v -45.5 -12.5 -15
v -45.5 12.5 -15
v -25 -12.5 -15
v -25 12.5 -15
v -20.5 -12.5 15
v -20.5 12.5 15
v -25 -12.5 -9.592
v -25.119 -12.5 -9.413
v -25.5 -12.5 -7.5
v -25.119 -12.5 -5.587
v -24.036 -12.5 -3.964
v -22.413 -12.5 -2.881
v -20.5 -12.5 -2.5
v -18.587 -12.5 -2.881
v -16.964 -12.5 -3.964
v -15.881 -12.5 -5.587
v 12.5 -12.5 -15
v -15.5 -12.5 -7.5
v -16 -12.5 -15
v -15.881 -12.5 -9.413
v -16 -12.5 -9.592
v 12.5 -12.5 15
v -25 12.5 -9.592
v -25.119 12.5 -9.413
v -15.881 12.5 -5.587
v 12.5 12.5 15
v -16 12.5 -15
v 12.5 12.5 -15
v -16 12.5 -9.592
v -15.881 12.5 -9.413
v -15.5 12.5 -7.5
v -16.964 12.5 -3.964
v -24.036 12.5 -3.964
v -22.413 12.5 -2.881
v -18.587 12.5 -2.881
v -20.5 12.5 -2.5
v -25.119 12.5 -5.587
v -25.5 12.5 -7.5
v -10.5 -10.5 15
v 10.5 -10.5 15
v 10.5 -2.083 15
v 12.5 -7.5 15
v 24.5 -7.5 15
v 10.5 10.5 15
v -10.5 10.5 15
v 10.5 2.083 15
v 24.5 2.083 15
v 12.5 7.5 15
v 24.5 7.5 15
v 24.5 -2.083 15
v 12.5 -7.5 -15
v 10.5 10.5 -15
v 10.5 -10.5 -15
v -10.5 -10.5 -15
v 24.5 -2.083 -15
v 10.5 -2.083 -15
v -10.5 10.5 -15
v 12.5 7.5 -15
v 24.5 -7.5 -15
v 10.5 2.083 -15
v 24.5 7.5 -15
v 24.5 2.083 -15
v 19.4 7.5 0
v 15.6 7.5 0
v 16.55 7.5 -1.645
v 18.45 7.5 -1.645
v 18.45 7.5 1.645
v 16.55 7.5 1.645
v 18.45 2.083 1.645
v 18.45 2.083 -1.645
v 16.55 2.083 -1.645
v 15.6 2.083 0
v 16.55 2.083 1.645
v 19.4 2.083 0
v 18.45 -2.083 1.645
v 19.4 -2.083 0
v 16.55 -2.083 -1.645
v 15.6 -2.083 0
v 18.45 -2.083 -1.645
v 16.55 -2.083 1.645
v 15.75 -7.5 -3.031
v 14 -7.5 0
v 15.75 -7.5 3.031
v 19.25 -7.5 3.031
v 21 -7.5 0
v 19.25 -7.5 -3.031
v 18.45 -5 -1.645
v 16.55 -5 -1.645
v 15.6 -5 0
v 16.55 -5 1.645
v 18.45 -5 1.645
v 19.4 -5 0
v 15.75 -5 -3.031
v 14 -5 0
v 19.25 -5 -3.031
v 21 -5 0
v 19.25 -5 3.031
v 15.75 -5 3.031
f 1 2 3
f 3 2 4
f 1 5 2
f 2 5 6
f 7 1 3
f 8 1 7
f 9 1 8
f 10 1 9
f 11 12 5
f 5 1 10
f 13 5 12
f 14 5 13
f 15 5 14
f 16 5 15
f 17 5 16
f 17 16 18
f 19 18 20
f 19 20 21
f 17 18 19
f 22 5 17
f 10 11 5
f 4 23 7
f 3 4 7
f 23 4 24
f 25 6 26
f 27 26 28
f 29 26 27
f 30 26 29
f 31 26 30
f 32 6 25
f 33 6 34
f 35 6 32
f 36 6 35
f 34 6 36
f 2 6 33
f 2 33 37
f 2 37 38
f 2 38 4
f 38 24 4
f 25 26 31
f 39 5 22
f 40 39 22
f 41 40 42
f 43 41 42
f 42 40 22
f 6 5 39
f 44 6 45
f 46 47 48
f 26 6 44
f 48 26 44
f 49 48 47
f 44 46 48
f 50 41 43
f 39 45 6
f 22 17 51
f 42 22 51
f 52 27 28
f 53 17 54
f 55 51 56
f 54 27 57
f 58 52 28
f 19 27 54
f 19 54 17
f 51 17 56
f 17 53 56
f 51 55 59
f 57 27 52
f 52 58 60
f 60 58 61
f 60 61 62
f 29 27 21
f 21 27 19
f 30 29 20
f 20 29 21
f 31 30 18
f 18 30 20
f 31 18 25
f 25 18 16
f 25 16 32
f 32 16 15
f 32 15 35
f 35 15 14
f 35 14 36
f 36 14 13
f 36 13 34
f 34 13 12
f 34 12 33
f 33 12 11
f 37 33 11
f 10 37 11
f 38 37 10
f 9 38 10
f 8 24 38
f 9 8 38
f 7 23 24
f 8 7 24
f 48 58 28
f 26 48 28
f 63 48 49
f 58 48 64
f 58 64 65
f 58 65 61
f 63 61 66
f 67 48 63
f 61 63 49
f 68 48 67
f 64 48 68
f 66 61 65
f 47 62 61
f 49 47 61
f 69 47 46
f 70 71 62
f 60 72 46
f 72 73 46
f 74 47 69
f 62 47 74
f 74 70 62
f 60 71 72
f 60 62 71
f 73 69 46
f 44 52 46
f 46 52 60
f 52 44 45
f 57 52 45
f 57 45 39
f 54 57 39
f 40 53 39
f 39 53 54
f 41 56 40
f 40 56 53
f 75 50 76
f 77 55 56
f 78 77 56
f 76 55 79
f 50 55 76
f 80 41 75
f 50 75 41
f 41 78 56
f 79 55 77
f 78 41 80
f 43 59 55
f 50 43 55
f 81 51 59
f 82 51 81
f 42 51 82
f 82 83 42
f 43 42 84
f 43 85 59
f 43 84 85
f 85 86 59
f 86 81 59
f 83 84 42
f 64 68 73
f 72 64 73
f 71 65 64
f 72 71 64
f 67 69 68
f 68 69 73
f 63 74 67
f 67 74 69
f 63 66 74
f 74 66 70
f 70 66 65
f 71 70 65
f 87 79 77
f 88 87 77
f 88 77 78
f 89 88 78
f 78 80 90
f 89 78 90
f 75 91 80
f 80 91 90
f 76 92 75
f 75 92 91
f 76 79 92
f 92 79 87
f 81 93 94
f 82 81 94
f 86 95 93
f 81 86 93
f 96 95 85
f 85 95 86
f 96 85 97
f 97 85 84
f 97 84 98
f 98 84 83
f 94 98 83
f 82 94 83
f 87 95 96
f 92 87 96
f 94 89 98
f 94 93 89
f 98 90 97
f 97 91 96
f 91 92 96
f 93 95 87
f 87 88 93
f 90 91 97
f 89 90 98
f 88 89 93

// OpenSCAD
// file: nut_trap.scad
/*
 *  OpenSCAD nut_trap.scad
 *  Copyright (C) 2013 Mogue Carpenter
 *
 *  License: LGPL 2.1 or later
 *
 *  A simple nut trap. 
 *  
*/

// example 
// nut_trap(21,3,6,3,6);


module nut_trap ( lenght, hole_dia, nut_dia, nut_depth, nut_sides ) {
	// lenght : Total lenght of the trap. 
	// hole_dia : Diameter of the bolt shaft.
	// nut_dia : Diameter of the nut.
	// nut_depth : Depth of the nut trap.
	// nut_sides : Number of side in the nut trap. 
	difference() {
		union() {
			cylinder(lenght,hole_dia/2,hole_dia/2,center = true);

			translate ([0,0,(lenght/2)-nut_depth])
			cylinder(nut_depth,nut_dia/2,nut_dia/2,nut_depth,$fn=nut_sides);
		}	

	} // differance 
}
// main file
/*
 *  OpenSCAD threaded rod holder 
 *  Copyright (C) 2013 Mogue Carpenter
 *
 *  License: LGPL 2.1 or later
 *
 *  A simple rod holder to fit on a rectangular
 *  pipe with a m4 retaining screw.
*/

include <nut_trap.scad>;

// Rod size
rod_dia = 8;
rod_r = rod_dia/2 ;

// Part size
box_height = 30;
outer_size_x = 25;
outer_size_y = 25;

// Tube size
inner_size_x = 21;
inner_size_y = 21;

// Bolt
bolt_lenght = 15;
bolt_nut_dia = 7;

difference() {
	union() {
		// Outer Box
		translate([-rod_dia/2,0,0])
		cube( size = [outer_size_x+rod_dia,outer_size_y,box_height], center = true); 
		wedge ();
		translate([inner_size_x/2+bolt_nut_dia,0,0]) nut_vise(bolt_nut_dia,bolt_lenght,box_height);
	}

		// - inner box
		cube( size = [inner_size_x,inner_size_y,box_height+2], center = true); 
		// rod clip
		translate ([-((outer_size_x/2+rod_dia)),0,-box_height/4])
			rod_clip_hole(outer_size_y+2,(rod_dia/2)+1,box_height/2);
	  // vice grip gap
		translate([(bolt_nut_dia*2)+(outer_size_x - inner_size_x),0,0])
			cube (size = [(bolt_nut_dia*2)+(outer_size_x - inner_size_x)+1,outer_size_y/6,box_height], center = true) ;
}

module rod_clip_hole (w, r, h) {
	rotate([90,0,0])
		cylinder(w,r,r,center = true);
	translate ( v = [0,0,-h/4] )
		cube( size = [(r*2)-1,w,h/2], center = true); 
 }

module wedge (){
translate ( v = [-(outer_size_x+rod_dia),0,0] )
	polyhedron(
	  points=[ 
			// the four points at base
			[outer_size_x/2,outer_size_y/2,-box_height/2],
			[outer_size_x/2,-outer_size_y/2,-box_height/2],
			[-outer_size_x/2,-outer_size_y/2,-box_height/2],
			[-outer_size_x/2,outer_size_y/2,-box_height/2],	
	 		// the apex edge 
			[outer_size_x/2,-outer_size_y/2,box_height/2],
			[outer_size_x/2,outer_size_y/2,box_height/2]  
		],
		triangles=[
					// each triangle side
					[0,1,4],
					[1,2,4],
					[2,3,5],
					[3,0,5],
					[0,4,5],
					[4,2,5],
					// two triangles for square base
					[1,0,3],
					[2,1,3] 
		] 
 );
}

module nut_vise(x,y,h,n){

	// nut trap
	nut_trap_size = x; // nut trap x lenght is nut_trap_size*2
	nut_trap_depth = 3;
	nut_trap_sides = 6;
	bolt_dia = 3.8;
	shaft_lenght = y+1;


	difference() {
		cube( size = [nut_trap_size*2,y,h], center = true);
		rotate([90,0,0])
			nut_trap(lenght=shaft_lenght, hole_dia=bolt_dia, nut_dia=nut_trap_size, nut_depth=nut_trap_depth, nut_sides = nut_trap_sides );
	};
};
